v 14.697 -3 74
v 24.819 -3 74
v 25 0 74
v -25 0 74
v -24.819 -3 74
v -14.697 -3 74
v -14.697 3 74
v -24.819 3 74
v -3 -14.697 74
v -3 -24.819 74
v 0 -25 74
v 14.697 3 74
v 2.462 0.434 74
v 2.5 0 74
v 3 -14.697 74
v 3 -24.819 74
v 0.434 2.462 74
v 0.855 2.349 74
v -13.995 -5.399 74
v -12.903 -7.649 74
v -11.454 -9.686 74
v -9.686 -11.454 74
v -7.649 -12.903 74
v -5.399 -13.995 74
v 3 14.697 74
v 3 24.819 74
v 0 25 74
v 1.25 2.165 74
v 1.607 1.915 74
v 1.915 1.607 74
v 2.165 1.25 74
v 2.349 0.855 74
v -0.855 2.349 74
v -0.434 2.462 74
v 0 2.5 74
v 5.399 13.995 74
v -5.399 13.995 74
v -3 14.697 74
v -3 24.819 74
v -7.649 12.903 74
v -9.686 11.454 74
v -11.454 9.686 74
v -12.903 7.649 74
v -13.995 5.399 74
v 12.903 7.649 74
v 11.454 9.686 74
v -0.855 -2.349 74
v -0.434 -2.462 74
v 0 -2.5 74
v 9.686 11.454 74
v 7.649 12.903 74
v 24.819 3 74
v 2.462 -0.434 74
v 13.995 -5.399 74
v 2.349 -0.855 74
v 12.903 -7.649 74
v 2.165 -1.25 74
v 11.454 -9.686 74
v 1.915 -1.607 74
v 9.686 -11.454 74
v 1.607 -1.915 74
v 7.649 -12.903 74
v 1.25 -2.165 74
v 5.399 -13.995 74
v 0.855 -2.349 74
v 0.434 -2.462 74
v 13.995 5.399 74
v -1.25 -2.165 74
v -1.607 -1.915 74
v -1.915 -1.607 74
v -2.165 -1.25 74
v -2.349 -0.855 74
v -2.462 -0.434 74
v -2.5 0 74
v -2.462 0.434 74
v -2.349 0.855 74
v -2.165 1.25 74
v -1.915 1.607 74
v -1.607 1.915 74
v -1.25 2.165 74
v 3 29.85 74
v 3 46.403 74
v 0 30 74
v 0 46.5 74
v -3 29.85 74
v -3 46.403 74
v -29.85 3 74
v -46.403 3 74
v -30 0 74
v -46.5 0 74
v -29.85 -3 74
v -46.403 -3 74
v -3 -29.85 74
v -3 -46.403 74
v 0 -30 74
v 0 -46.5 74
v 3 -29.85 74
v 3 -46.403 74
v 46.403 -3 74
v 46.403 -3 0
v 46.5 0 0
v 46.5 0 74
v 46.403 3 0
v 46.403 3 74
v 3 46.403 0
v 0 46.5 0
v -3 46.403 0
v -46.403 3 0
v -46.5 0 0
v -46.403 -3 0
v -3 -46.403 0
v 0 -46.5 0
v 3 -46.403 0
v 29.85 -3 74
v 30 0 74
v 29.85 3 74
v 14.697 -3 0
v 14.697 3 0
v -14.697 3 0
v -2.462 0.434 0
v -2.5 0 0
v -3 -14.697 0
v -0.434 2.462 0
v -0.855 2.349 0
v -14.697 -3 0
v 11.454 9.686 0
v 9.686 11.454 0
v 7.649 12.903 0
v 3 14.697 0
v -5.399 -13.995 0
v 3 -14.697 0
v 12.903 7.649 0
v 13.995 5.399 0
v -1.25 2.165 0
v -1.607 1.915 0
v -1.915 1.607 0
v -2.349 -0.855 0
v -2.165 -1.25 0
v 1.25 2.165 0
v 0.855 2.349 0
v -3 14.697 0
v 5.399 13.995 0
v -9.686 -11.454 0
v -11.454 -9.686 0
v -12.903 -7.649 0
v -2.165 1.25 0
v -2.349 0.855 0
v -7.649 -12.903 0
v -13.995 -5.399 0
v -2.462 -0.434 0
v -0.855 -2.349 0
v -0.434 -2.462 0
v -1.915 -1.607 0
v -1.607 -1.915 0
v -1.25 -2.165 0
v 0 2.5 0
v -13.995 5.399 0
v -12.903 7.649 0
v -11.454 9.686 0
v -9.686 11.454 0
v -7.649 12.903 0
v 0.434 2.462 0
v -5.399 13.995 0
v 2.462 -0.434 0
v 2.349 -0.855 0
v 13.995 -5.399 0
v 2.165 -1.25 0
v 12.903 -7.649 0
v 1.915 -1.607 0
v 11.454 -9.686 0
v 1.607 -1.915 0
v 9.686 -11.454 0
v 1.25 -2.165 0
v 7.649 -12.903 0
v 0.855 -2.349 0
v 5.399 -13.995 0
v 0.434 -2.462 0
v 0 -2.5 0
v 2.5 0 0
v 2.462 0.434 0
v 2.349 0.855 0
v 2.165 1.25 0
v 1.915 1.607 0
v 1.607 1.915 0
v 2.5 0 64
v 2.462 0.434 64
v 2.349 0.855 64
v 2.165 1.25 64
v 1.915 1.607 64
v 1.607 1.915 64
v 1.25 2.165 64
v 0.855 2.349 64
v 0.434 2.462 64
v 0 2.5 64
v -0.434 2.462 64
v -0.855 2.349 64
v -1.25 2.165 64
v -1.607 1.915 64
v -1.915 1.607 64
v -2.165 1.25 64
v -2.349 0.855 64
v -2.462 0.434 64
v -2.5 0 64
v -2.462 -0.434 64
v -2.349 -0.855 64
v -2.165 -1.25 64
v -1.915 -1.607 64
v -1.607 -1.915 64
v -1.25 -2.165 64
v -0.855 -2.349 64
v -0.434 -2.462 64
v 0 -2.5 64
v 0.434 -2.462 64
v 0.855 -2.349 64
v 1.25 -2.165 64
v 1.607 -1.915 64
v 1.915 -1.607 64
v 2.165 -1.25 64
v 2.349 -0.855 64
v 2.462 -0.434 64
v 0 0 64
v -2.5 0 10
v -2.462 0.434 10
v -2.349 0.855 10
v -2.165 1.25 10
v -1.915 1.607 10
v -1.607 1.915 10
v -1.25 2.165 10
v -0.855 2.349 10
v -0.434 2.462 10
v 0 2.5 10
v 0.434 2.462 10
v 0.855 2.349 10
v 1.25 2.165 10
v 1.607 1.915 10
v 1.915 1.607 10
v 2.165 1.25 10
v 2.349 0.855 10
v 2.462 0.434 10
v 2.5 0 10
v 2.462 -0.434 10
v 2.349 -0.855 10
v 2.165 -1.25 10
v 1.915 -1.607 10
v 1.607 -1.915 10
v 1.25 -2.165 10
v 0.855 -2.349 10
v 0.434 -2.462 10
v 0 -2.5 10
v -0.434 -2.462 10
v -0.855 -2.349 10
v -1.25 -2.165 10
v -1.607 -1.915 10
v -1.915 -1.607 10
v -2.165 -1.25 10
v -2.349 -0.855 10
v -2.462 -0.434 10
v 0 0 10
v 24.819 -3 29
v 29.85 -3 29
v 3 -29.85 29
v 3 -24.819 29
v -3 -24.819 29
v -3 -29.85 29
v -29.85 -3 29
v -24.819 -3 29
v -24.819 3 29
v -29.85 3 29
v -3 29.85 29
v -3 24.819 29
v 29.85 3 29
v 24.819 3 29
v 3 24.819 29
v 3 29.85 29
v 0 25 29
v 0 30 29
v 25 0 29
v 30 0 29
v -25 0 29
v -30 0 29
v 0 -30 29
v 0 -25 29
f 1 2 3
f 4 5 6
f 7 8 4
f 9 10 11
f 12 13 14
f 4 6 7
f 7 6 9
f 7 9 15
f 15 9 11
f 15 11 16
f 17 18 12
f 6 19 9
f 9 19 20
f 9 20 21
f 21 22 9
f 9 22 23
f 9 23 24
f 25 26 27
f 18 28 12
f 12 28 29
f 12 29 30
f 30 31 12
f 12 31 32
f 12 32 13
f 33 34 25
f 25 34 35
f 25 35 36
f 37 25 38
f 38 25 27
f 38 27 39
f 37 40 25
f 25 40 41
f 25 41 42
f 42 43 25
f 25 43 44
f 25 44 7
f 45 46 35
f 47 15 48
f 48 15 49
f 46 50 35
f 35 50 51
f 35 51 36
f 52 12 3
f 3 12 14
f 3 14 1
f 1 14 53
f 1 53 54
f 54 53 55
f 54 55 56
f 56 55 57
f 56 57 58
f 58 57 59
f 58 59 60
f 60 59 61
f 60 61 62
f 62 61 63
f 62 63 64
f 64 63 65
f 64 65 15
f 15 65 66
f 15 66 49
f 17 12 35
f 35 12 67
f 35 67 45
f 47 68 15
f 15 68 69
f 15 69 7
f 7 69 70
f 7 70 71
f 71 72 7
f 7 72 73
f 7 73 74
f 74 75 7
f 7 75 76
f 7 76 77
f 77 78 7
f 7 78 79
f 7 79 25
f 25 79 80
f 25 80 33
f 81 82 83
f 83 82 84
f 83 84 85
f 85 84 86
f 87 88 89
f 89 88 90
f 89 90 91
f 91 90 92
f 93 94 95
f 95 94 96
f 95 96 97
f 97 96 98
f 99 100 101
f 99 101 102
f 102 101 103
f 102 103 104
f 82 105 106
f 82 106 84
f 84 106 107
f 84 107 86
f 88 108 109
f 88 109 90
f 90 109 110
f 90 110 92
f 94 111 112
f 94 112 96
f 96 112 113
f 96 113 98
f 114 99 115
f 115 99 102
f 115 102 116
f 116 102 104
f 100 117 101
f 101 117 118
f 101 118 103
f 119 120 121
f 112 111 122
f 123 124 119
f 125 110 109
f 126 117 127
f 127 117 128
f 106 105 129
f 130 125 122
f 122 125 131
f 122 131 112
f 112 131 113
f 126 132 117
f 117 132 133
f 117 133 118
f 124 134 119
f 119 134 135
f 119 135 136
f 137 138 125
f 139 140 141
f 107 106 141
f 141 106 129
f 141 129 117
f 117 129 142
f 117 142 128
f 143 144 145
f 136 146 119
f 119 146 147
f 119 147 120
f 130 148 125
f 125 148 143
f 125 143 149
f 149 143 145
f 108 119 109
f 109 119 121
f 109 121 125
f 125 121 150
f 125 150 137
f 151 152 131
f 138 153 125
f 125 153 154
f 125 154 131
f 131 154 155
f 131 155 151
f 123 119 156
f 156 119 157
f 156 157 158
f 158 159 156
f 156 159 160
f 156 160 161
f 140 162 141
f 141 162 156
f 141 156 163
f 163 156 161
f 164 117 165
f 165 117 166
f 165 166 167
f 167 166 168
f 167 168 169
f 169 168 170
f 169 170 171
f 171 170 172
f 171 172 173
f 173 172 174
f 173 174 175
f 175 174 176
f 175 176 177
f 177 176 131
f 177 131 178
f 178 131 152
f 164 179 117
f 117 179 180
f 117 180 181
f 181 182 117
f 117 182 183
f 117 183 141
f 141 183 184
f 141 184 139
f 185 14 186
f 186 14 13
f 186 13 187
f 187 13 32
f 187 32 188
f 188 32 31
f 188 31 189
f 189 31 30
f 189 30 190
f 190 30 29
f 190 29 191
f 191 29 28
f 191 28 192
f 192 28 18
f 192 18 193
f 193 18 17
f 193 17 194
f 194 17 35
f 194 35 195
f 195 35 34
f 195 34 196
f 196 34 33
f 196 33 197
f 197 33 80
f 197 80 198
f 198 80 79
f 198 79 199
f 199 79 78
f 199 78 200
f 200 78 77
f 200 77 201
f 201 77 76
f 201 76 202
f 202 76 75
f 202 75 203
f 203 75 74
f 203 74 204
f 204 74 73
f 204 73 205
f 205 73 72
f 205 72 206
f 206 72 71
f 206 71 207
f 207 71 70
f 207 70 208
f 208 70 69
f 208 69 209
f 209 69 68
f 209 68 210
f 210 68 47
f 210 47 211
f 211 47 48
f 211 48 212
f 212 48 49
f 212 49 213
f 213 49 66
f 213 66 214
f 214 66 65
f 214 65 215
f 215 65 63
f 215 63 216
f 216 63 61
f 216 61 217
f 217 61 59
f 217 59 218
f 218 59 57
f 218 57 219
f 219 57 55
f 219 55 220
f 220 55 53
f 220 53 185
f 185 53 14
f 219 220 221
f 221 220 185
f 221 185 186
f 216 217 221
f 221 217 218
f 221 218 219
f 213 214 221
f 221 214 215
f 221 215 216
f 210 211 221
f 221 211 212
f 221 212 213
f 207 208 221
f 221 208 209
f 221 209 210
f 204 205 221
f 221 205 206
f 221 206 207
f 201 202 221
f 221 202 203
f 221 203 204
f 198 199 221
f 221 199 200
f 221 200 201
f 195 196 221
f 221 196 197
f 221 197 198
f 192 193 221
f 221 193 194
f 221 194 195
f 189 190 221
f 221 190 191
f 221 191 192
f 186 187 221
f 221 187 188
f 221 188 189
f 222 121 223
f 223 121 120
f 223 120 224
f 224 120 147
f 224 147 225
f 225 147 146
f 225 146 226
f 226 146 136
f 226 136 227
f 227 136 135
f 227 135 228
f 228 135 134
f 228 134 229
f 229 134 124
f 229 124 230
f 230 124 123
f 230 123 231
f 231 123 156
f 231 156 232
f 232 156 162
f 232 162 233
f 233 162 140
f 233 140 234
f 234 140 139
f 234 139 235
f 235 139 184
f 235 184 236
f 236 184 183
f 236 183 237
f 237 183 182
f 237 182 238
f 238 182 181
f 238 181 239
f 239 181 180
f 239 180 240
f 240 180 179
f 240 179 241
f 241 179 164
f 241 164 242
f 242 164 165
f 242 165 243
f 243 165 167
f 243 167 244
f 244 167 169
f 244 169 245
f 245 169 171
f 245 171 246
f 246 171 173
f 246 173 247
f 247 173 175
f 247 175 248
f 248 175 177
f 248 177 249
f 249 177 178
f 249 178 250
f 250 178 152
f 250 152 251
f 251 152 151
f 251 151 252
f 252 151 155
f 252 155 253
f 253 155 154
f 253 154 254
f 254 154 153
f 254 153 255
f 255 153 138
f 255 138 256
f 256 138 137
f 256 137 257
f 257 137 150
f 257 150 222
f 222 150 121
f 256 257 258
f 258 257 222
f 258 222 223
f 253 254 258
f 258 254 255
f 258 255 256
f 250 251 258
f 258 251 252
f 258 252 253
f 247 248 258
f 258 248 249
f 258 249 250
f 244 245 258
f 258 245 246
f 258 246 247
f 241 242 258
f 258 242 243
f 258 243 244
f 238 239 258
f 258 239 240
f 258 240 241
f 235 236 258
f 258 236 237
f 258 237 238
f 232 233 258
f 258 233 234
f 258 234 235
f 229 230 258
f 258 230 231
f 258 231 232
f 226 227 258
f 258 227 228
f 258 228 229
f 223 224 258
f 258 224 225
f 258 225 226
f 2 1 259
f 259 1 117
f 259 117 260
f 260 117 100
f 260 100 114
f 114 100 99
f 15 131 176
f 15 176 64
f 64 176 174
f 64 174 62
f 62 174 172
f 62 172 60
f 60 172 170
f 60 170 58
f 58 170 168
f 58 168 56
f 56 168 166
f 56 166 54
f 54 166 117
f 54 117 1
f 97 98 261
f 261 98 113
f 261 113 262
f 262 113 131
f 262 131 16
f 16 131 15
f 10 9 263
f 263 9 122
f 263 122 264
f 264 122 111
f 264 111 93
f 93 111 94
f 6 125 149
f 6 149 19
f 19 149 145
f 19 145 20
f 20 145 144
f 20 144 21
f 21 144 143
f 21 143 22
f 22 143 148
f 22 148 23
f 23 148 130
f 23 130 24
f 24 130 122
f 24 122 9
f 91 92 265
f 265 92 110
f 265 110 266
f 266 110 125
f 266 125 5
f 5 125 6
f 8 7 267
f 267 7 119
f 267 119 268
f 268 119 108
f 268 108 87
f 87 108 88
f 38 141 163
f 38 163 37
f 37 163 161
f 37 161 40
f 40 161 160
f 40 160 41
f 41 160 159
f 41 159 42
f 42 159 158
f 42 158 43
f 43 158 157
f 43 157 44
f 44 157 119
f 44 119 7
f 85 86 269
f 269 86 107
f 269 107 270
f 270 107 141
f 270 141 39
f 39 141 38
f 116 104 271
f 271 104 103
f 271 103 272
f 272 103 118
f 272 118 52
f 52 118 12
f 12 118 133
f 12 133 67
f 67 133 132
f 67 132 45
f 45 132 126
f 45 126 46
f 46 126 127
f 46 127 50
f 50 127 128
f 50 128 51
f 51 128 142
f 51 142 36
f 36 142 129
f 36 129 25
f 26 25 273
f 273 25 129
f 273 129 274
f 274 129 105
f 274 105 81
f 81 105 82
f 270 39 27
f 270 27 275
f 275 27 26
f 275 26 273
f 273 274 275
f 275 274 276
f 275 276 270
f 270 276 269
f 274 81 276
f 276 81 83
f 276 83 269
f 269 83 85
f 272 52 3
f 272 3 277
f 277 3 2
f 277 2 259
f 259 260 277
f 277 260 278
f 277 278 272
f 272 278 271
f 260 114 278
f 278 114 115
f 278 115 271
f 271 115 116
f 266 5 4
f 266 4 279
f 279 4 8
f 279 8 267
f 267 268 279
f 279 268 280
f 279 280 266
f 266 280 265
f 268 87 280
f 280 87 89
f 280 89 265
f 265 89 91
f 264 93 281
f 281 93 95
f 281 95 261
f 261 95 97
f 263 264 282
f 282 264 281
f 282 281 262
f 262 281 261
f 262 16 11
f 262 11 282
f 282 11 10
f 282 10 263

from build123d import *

# Parameters (mm, degrees)
SKETCH1_R           = 46.5
BOSS_EXTRUDE1_DEPTH = 74
SKETCH2_R           = 2.5
CUT_EXTRUDE1_DEPTH  = 10
SKETCH3_R           = 2.5
CUT_EXTRUDE2_DEPTH  = 10
SKETCH4_OUTSIDE_W   = 125.182
SKETCH4_OUTSIDE_H   = 125.182
CUT_EXTRUDE3_DEPTH  = 75
SKETCH7_R           = 30
SKETCH7_R_2         = 25
CUT_EXTRUDE4_DEPTH  = 45


with BuildPart() as part:
    # Sketch1 → Boss-Extrude1 (new body)
    with BuildSketch(Plane.XY):
        Circle(SKETCH1_R)
    extrude(amount=BOSS_EXTRUDE1_DEPTH)

    # Sketch2 → Cut-Extrude1 (cut)
    with BuildSketch(Plane.XY.offset(74)):
        Circle(SKETCH2_R)
    extrude(amount=-CUT_EXTRUDE1_DEPTH, mode=Mode.SUBTRACT)

    # Sketch3 → Cut-Extrude2 (cut)
    with BuildSketch(Plane(origin=(0, 0, 0), x_dir=(-1, 0, 0), z_dir=(0, 0, -1))):
        Circle(SKETCH3_R)
    extrude(amount=-CUT_EXTRUDE2_DEPTH, mode=Mode.SUBTRACT)

    # Sketch4 outside → Cut-Extrude3 (cut, through all)
    with BuildSketch(Plane(origin=(0, 0, 0), x_dir=(-1, 0, 0), z_dir=(0, 0, -1))):
        Rectangle(SKETCH4_OUTSIDE_W, SKETCH4_OUTSIDE_H)
        with BuildLine():
            Line((-46.403124895, 3), (-14.696938457, 3))
            ThreePointArc((-14.696938457, 3), (-10.606601718, 10.606601718), (-3, 14.696938457))
            Line((-3, 14.696938457), (-3, 46.403124895))
            ThreePointArc((-3, 46.403124895), (0, 46.5), (3, 46.403124895))
            Line((3, 46.403124895), (3, 14.696938457))
            ThreePointArc((3, 14.696938457), (10.606601718, 10.606601718), (14.696938457, 3))
            Line((14.696938457, 3), (46.403124895, 3))
            ThreePointArc((46.403124895, 3), (46.5, 0), (46.403124895, -3))
            Line((46.403124895, -3), (14.696938457, -3))
            ThreePointArc((14.696938457, -3), (10.606601718, -10.606601718), (3, -14.696938457))
            Line((3, -14.696938457), (3, -46.403124895))
            ThreePointArc((3, -46.403124895), (0, -46.5), (-3, -46.403124895))
            Line((-3, -46.403124895), (-3, -14.696938457))
            ThreePointArc((-3, -14.696938457), (-10.606601718, -10.606601718), (-14.696938457, -3))
            Line((-14.696938457, -3), (-46.403124895, -3))
            ThreePointArc((-46.403124895, -3), (-46.5, 0), (-46.403124895, 3))
        make_face(mode=Mode.SUBTRACT)
    extrude(amount=-CUT_EXTRUDE3_DEPTH, mode=Mode.SUBTRACT)

    # Sketch7 → Cut-Extrude4 (cut)
    with BuildSketch(Plane.XY.offset(74)):
        Circle(SKETCH7_R)
        Circle(SKETCH7_R_2, mode=Mode.SUBTRACT)
    extrude(amount=-CUT_EXTRUDE4_DEPTH, mode=Mode.SUBTRACT)


solid = part.part
